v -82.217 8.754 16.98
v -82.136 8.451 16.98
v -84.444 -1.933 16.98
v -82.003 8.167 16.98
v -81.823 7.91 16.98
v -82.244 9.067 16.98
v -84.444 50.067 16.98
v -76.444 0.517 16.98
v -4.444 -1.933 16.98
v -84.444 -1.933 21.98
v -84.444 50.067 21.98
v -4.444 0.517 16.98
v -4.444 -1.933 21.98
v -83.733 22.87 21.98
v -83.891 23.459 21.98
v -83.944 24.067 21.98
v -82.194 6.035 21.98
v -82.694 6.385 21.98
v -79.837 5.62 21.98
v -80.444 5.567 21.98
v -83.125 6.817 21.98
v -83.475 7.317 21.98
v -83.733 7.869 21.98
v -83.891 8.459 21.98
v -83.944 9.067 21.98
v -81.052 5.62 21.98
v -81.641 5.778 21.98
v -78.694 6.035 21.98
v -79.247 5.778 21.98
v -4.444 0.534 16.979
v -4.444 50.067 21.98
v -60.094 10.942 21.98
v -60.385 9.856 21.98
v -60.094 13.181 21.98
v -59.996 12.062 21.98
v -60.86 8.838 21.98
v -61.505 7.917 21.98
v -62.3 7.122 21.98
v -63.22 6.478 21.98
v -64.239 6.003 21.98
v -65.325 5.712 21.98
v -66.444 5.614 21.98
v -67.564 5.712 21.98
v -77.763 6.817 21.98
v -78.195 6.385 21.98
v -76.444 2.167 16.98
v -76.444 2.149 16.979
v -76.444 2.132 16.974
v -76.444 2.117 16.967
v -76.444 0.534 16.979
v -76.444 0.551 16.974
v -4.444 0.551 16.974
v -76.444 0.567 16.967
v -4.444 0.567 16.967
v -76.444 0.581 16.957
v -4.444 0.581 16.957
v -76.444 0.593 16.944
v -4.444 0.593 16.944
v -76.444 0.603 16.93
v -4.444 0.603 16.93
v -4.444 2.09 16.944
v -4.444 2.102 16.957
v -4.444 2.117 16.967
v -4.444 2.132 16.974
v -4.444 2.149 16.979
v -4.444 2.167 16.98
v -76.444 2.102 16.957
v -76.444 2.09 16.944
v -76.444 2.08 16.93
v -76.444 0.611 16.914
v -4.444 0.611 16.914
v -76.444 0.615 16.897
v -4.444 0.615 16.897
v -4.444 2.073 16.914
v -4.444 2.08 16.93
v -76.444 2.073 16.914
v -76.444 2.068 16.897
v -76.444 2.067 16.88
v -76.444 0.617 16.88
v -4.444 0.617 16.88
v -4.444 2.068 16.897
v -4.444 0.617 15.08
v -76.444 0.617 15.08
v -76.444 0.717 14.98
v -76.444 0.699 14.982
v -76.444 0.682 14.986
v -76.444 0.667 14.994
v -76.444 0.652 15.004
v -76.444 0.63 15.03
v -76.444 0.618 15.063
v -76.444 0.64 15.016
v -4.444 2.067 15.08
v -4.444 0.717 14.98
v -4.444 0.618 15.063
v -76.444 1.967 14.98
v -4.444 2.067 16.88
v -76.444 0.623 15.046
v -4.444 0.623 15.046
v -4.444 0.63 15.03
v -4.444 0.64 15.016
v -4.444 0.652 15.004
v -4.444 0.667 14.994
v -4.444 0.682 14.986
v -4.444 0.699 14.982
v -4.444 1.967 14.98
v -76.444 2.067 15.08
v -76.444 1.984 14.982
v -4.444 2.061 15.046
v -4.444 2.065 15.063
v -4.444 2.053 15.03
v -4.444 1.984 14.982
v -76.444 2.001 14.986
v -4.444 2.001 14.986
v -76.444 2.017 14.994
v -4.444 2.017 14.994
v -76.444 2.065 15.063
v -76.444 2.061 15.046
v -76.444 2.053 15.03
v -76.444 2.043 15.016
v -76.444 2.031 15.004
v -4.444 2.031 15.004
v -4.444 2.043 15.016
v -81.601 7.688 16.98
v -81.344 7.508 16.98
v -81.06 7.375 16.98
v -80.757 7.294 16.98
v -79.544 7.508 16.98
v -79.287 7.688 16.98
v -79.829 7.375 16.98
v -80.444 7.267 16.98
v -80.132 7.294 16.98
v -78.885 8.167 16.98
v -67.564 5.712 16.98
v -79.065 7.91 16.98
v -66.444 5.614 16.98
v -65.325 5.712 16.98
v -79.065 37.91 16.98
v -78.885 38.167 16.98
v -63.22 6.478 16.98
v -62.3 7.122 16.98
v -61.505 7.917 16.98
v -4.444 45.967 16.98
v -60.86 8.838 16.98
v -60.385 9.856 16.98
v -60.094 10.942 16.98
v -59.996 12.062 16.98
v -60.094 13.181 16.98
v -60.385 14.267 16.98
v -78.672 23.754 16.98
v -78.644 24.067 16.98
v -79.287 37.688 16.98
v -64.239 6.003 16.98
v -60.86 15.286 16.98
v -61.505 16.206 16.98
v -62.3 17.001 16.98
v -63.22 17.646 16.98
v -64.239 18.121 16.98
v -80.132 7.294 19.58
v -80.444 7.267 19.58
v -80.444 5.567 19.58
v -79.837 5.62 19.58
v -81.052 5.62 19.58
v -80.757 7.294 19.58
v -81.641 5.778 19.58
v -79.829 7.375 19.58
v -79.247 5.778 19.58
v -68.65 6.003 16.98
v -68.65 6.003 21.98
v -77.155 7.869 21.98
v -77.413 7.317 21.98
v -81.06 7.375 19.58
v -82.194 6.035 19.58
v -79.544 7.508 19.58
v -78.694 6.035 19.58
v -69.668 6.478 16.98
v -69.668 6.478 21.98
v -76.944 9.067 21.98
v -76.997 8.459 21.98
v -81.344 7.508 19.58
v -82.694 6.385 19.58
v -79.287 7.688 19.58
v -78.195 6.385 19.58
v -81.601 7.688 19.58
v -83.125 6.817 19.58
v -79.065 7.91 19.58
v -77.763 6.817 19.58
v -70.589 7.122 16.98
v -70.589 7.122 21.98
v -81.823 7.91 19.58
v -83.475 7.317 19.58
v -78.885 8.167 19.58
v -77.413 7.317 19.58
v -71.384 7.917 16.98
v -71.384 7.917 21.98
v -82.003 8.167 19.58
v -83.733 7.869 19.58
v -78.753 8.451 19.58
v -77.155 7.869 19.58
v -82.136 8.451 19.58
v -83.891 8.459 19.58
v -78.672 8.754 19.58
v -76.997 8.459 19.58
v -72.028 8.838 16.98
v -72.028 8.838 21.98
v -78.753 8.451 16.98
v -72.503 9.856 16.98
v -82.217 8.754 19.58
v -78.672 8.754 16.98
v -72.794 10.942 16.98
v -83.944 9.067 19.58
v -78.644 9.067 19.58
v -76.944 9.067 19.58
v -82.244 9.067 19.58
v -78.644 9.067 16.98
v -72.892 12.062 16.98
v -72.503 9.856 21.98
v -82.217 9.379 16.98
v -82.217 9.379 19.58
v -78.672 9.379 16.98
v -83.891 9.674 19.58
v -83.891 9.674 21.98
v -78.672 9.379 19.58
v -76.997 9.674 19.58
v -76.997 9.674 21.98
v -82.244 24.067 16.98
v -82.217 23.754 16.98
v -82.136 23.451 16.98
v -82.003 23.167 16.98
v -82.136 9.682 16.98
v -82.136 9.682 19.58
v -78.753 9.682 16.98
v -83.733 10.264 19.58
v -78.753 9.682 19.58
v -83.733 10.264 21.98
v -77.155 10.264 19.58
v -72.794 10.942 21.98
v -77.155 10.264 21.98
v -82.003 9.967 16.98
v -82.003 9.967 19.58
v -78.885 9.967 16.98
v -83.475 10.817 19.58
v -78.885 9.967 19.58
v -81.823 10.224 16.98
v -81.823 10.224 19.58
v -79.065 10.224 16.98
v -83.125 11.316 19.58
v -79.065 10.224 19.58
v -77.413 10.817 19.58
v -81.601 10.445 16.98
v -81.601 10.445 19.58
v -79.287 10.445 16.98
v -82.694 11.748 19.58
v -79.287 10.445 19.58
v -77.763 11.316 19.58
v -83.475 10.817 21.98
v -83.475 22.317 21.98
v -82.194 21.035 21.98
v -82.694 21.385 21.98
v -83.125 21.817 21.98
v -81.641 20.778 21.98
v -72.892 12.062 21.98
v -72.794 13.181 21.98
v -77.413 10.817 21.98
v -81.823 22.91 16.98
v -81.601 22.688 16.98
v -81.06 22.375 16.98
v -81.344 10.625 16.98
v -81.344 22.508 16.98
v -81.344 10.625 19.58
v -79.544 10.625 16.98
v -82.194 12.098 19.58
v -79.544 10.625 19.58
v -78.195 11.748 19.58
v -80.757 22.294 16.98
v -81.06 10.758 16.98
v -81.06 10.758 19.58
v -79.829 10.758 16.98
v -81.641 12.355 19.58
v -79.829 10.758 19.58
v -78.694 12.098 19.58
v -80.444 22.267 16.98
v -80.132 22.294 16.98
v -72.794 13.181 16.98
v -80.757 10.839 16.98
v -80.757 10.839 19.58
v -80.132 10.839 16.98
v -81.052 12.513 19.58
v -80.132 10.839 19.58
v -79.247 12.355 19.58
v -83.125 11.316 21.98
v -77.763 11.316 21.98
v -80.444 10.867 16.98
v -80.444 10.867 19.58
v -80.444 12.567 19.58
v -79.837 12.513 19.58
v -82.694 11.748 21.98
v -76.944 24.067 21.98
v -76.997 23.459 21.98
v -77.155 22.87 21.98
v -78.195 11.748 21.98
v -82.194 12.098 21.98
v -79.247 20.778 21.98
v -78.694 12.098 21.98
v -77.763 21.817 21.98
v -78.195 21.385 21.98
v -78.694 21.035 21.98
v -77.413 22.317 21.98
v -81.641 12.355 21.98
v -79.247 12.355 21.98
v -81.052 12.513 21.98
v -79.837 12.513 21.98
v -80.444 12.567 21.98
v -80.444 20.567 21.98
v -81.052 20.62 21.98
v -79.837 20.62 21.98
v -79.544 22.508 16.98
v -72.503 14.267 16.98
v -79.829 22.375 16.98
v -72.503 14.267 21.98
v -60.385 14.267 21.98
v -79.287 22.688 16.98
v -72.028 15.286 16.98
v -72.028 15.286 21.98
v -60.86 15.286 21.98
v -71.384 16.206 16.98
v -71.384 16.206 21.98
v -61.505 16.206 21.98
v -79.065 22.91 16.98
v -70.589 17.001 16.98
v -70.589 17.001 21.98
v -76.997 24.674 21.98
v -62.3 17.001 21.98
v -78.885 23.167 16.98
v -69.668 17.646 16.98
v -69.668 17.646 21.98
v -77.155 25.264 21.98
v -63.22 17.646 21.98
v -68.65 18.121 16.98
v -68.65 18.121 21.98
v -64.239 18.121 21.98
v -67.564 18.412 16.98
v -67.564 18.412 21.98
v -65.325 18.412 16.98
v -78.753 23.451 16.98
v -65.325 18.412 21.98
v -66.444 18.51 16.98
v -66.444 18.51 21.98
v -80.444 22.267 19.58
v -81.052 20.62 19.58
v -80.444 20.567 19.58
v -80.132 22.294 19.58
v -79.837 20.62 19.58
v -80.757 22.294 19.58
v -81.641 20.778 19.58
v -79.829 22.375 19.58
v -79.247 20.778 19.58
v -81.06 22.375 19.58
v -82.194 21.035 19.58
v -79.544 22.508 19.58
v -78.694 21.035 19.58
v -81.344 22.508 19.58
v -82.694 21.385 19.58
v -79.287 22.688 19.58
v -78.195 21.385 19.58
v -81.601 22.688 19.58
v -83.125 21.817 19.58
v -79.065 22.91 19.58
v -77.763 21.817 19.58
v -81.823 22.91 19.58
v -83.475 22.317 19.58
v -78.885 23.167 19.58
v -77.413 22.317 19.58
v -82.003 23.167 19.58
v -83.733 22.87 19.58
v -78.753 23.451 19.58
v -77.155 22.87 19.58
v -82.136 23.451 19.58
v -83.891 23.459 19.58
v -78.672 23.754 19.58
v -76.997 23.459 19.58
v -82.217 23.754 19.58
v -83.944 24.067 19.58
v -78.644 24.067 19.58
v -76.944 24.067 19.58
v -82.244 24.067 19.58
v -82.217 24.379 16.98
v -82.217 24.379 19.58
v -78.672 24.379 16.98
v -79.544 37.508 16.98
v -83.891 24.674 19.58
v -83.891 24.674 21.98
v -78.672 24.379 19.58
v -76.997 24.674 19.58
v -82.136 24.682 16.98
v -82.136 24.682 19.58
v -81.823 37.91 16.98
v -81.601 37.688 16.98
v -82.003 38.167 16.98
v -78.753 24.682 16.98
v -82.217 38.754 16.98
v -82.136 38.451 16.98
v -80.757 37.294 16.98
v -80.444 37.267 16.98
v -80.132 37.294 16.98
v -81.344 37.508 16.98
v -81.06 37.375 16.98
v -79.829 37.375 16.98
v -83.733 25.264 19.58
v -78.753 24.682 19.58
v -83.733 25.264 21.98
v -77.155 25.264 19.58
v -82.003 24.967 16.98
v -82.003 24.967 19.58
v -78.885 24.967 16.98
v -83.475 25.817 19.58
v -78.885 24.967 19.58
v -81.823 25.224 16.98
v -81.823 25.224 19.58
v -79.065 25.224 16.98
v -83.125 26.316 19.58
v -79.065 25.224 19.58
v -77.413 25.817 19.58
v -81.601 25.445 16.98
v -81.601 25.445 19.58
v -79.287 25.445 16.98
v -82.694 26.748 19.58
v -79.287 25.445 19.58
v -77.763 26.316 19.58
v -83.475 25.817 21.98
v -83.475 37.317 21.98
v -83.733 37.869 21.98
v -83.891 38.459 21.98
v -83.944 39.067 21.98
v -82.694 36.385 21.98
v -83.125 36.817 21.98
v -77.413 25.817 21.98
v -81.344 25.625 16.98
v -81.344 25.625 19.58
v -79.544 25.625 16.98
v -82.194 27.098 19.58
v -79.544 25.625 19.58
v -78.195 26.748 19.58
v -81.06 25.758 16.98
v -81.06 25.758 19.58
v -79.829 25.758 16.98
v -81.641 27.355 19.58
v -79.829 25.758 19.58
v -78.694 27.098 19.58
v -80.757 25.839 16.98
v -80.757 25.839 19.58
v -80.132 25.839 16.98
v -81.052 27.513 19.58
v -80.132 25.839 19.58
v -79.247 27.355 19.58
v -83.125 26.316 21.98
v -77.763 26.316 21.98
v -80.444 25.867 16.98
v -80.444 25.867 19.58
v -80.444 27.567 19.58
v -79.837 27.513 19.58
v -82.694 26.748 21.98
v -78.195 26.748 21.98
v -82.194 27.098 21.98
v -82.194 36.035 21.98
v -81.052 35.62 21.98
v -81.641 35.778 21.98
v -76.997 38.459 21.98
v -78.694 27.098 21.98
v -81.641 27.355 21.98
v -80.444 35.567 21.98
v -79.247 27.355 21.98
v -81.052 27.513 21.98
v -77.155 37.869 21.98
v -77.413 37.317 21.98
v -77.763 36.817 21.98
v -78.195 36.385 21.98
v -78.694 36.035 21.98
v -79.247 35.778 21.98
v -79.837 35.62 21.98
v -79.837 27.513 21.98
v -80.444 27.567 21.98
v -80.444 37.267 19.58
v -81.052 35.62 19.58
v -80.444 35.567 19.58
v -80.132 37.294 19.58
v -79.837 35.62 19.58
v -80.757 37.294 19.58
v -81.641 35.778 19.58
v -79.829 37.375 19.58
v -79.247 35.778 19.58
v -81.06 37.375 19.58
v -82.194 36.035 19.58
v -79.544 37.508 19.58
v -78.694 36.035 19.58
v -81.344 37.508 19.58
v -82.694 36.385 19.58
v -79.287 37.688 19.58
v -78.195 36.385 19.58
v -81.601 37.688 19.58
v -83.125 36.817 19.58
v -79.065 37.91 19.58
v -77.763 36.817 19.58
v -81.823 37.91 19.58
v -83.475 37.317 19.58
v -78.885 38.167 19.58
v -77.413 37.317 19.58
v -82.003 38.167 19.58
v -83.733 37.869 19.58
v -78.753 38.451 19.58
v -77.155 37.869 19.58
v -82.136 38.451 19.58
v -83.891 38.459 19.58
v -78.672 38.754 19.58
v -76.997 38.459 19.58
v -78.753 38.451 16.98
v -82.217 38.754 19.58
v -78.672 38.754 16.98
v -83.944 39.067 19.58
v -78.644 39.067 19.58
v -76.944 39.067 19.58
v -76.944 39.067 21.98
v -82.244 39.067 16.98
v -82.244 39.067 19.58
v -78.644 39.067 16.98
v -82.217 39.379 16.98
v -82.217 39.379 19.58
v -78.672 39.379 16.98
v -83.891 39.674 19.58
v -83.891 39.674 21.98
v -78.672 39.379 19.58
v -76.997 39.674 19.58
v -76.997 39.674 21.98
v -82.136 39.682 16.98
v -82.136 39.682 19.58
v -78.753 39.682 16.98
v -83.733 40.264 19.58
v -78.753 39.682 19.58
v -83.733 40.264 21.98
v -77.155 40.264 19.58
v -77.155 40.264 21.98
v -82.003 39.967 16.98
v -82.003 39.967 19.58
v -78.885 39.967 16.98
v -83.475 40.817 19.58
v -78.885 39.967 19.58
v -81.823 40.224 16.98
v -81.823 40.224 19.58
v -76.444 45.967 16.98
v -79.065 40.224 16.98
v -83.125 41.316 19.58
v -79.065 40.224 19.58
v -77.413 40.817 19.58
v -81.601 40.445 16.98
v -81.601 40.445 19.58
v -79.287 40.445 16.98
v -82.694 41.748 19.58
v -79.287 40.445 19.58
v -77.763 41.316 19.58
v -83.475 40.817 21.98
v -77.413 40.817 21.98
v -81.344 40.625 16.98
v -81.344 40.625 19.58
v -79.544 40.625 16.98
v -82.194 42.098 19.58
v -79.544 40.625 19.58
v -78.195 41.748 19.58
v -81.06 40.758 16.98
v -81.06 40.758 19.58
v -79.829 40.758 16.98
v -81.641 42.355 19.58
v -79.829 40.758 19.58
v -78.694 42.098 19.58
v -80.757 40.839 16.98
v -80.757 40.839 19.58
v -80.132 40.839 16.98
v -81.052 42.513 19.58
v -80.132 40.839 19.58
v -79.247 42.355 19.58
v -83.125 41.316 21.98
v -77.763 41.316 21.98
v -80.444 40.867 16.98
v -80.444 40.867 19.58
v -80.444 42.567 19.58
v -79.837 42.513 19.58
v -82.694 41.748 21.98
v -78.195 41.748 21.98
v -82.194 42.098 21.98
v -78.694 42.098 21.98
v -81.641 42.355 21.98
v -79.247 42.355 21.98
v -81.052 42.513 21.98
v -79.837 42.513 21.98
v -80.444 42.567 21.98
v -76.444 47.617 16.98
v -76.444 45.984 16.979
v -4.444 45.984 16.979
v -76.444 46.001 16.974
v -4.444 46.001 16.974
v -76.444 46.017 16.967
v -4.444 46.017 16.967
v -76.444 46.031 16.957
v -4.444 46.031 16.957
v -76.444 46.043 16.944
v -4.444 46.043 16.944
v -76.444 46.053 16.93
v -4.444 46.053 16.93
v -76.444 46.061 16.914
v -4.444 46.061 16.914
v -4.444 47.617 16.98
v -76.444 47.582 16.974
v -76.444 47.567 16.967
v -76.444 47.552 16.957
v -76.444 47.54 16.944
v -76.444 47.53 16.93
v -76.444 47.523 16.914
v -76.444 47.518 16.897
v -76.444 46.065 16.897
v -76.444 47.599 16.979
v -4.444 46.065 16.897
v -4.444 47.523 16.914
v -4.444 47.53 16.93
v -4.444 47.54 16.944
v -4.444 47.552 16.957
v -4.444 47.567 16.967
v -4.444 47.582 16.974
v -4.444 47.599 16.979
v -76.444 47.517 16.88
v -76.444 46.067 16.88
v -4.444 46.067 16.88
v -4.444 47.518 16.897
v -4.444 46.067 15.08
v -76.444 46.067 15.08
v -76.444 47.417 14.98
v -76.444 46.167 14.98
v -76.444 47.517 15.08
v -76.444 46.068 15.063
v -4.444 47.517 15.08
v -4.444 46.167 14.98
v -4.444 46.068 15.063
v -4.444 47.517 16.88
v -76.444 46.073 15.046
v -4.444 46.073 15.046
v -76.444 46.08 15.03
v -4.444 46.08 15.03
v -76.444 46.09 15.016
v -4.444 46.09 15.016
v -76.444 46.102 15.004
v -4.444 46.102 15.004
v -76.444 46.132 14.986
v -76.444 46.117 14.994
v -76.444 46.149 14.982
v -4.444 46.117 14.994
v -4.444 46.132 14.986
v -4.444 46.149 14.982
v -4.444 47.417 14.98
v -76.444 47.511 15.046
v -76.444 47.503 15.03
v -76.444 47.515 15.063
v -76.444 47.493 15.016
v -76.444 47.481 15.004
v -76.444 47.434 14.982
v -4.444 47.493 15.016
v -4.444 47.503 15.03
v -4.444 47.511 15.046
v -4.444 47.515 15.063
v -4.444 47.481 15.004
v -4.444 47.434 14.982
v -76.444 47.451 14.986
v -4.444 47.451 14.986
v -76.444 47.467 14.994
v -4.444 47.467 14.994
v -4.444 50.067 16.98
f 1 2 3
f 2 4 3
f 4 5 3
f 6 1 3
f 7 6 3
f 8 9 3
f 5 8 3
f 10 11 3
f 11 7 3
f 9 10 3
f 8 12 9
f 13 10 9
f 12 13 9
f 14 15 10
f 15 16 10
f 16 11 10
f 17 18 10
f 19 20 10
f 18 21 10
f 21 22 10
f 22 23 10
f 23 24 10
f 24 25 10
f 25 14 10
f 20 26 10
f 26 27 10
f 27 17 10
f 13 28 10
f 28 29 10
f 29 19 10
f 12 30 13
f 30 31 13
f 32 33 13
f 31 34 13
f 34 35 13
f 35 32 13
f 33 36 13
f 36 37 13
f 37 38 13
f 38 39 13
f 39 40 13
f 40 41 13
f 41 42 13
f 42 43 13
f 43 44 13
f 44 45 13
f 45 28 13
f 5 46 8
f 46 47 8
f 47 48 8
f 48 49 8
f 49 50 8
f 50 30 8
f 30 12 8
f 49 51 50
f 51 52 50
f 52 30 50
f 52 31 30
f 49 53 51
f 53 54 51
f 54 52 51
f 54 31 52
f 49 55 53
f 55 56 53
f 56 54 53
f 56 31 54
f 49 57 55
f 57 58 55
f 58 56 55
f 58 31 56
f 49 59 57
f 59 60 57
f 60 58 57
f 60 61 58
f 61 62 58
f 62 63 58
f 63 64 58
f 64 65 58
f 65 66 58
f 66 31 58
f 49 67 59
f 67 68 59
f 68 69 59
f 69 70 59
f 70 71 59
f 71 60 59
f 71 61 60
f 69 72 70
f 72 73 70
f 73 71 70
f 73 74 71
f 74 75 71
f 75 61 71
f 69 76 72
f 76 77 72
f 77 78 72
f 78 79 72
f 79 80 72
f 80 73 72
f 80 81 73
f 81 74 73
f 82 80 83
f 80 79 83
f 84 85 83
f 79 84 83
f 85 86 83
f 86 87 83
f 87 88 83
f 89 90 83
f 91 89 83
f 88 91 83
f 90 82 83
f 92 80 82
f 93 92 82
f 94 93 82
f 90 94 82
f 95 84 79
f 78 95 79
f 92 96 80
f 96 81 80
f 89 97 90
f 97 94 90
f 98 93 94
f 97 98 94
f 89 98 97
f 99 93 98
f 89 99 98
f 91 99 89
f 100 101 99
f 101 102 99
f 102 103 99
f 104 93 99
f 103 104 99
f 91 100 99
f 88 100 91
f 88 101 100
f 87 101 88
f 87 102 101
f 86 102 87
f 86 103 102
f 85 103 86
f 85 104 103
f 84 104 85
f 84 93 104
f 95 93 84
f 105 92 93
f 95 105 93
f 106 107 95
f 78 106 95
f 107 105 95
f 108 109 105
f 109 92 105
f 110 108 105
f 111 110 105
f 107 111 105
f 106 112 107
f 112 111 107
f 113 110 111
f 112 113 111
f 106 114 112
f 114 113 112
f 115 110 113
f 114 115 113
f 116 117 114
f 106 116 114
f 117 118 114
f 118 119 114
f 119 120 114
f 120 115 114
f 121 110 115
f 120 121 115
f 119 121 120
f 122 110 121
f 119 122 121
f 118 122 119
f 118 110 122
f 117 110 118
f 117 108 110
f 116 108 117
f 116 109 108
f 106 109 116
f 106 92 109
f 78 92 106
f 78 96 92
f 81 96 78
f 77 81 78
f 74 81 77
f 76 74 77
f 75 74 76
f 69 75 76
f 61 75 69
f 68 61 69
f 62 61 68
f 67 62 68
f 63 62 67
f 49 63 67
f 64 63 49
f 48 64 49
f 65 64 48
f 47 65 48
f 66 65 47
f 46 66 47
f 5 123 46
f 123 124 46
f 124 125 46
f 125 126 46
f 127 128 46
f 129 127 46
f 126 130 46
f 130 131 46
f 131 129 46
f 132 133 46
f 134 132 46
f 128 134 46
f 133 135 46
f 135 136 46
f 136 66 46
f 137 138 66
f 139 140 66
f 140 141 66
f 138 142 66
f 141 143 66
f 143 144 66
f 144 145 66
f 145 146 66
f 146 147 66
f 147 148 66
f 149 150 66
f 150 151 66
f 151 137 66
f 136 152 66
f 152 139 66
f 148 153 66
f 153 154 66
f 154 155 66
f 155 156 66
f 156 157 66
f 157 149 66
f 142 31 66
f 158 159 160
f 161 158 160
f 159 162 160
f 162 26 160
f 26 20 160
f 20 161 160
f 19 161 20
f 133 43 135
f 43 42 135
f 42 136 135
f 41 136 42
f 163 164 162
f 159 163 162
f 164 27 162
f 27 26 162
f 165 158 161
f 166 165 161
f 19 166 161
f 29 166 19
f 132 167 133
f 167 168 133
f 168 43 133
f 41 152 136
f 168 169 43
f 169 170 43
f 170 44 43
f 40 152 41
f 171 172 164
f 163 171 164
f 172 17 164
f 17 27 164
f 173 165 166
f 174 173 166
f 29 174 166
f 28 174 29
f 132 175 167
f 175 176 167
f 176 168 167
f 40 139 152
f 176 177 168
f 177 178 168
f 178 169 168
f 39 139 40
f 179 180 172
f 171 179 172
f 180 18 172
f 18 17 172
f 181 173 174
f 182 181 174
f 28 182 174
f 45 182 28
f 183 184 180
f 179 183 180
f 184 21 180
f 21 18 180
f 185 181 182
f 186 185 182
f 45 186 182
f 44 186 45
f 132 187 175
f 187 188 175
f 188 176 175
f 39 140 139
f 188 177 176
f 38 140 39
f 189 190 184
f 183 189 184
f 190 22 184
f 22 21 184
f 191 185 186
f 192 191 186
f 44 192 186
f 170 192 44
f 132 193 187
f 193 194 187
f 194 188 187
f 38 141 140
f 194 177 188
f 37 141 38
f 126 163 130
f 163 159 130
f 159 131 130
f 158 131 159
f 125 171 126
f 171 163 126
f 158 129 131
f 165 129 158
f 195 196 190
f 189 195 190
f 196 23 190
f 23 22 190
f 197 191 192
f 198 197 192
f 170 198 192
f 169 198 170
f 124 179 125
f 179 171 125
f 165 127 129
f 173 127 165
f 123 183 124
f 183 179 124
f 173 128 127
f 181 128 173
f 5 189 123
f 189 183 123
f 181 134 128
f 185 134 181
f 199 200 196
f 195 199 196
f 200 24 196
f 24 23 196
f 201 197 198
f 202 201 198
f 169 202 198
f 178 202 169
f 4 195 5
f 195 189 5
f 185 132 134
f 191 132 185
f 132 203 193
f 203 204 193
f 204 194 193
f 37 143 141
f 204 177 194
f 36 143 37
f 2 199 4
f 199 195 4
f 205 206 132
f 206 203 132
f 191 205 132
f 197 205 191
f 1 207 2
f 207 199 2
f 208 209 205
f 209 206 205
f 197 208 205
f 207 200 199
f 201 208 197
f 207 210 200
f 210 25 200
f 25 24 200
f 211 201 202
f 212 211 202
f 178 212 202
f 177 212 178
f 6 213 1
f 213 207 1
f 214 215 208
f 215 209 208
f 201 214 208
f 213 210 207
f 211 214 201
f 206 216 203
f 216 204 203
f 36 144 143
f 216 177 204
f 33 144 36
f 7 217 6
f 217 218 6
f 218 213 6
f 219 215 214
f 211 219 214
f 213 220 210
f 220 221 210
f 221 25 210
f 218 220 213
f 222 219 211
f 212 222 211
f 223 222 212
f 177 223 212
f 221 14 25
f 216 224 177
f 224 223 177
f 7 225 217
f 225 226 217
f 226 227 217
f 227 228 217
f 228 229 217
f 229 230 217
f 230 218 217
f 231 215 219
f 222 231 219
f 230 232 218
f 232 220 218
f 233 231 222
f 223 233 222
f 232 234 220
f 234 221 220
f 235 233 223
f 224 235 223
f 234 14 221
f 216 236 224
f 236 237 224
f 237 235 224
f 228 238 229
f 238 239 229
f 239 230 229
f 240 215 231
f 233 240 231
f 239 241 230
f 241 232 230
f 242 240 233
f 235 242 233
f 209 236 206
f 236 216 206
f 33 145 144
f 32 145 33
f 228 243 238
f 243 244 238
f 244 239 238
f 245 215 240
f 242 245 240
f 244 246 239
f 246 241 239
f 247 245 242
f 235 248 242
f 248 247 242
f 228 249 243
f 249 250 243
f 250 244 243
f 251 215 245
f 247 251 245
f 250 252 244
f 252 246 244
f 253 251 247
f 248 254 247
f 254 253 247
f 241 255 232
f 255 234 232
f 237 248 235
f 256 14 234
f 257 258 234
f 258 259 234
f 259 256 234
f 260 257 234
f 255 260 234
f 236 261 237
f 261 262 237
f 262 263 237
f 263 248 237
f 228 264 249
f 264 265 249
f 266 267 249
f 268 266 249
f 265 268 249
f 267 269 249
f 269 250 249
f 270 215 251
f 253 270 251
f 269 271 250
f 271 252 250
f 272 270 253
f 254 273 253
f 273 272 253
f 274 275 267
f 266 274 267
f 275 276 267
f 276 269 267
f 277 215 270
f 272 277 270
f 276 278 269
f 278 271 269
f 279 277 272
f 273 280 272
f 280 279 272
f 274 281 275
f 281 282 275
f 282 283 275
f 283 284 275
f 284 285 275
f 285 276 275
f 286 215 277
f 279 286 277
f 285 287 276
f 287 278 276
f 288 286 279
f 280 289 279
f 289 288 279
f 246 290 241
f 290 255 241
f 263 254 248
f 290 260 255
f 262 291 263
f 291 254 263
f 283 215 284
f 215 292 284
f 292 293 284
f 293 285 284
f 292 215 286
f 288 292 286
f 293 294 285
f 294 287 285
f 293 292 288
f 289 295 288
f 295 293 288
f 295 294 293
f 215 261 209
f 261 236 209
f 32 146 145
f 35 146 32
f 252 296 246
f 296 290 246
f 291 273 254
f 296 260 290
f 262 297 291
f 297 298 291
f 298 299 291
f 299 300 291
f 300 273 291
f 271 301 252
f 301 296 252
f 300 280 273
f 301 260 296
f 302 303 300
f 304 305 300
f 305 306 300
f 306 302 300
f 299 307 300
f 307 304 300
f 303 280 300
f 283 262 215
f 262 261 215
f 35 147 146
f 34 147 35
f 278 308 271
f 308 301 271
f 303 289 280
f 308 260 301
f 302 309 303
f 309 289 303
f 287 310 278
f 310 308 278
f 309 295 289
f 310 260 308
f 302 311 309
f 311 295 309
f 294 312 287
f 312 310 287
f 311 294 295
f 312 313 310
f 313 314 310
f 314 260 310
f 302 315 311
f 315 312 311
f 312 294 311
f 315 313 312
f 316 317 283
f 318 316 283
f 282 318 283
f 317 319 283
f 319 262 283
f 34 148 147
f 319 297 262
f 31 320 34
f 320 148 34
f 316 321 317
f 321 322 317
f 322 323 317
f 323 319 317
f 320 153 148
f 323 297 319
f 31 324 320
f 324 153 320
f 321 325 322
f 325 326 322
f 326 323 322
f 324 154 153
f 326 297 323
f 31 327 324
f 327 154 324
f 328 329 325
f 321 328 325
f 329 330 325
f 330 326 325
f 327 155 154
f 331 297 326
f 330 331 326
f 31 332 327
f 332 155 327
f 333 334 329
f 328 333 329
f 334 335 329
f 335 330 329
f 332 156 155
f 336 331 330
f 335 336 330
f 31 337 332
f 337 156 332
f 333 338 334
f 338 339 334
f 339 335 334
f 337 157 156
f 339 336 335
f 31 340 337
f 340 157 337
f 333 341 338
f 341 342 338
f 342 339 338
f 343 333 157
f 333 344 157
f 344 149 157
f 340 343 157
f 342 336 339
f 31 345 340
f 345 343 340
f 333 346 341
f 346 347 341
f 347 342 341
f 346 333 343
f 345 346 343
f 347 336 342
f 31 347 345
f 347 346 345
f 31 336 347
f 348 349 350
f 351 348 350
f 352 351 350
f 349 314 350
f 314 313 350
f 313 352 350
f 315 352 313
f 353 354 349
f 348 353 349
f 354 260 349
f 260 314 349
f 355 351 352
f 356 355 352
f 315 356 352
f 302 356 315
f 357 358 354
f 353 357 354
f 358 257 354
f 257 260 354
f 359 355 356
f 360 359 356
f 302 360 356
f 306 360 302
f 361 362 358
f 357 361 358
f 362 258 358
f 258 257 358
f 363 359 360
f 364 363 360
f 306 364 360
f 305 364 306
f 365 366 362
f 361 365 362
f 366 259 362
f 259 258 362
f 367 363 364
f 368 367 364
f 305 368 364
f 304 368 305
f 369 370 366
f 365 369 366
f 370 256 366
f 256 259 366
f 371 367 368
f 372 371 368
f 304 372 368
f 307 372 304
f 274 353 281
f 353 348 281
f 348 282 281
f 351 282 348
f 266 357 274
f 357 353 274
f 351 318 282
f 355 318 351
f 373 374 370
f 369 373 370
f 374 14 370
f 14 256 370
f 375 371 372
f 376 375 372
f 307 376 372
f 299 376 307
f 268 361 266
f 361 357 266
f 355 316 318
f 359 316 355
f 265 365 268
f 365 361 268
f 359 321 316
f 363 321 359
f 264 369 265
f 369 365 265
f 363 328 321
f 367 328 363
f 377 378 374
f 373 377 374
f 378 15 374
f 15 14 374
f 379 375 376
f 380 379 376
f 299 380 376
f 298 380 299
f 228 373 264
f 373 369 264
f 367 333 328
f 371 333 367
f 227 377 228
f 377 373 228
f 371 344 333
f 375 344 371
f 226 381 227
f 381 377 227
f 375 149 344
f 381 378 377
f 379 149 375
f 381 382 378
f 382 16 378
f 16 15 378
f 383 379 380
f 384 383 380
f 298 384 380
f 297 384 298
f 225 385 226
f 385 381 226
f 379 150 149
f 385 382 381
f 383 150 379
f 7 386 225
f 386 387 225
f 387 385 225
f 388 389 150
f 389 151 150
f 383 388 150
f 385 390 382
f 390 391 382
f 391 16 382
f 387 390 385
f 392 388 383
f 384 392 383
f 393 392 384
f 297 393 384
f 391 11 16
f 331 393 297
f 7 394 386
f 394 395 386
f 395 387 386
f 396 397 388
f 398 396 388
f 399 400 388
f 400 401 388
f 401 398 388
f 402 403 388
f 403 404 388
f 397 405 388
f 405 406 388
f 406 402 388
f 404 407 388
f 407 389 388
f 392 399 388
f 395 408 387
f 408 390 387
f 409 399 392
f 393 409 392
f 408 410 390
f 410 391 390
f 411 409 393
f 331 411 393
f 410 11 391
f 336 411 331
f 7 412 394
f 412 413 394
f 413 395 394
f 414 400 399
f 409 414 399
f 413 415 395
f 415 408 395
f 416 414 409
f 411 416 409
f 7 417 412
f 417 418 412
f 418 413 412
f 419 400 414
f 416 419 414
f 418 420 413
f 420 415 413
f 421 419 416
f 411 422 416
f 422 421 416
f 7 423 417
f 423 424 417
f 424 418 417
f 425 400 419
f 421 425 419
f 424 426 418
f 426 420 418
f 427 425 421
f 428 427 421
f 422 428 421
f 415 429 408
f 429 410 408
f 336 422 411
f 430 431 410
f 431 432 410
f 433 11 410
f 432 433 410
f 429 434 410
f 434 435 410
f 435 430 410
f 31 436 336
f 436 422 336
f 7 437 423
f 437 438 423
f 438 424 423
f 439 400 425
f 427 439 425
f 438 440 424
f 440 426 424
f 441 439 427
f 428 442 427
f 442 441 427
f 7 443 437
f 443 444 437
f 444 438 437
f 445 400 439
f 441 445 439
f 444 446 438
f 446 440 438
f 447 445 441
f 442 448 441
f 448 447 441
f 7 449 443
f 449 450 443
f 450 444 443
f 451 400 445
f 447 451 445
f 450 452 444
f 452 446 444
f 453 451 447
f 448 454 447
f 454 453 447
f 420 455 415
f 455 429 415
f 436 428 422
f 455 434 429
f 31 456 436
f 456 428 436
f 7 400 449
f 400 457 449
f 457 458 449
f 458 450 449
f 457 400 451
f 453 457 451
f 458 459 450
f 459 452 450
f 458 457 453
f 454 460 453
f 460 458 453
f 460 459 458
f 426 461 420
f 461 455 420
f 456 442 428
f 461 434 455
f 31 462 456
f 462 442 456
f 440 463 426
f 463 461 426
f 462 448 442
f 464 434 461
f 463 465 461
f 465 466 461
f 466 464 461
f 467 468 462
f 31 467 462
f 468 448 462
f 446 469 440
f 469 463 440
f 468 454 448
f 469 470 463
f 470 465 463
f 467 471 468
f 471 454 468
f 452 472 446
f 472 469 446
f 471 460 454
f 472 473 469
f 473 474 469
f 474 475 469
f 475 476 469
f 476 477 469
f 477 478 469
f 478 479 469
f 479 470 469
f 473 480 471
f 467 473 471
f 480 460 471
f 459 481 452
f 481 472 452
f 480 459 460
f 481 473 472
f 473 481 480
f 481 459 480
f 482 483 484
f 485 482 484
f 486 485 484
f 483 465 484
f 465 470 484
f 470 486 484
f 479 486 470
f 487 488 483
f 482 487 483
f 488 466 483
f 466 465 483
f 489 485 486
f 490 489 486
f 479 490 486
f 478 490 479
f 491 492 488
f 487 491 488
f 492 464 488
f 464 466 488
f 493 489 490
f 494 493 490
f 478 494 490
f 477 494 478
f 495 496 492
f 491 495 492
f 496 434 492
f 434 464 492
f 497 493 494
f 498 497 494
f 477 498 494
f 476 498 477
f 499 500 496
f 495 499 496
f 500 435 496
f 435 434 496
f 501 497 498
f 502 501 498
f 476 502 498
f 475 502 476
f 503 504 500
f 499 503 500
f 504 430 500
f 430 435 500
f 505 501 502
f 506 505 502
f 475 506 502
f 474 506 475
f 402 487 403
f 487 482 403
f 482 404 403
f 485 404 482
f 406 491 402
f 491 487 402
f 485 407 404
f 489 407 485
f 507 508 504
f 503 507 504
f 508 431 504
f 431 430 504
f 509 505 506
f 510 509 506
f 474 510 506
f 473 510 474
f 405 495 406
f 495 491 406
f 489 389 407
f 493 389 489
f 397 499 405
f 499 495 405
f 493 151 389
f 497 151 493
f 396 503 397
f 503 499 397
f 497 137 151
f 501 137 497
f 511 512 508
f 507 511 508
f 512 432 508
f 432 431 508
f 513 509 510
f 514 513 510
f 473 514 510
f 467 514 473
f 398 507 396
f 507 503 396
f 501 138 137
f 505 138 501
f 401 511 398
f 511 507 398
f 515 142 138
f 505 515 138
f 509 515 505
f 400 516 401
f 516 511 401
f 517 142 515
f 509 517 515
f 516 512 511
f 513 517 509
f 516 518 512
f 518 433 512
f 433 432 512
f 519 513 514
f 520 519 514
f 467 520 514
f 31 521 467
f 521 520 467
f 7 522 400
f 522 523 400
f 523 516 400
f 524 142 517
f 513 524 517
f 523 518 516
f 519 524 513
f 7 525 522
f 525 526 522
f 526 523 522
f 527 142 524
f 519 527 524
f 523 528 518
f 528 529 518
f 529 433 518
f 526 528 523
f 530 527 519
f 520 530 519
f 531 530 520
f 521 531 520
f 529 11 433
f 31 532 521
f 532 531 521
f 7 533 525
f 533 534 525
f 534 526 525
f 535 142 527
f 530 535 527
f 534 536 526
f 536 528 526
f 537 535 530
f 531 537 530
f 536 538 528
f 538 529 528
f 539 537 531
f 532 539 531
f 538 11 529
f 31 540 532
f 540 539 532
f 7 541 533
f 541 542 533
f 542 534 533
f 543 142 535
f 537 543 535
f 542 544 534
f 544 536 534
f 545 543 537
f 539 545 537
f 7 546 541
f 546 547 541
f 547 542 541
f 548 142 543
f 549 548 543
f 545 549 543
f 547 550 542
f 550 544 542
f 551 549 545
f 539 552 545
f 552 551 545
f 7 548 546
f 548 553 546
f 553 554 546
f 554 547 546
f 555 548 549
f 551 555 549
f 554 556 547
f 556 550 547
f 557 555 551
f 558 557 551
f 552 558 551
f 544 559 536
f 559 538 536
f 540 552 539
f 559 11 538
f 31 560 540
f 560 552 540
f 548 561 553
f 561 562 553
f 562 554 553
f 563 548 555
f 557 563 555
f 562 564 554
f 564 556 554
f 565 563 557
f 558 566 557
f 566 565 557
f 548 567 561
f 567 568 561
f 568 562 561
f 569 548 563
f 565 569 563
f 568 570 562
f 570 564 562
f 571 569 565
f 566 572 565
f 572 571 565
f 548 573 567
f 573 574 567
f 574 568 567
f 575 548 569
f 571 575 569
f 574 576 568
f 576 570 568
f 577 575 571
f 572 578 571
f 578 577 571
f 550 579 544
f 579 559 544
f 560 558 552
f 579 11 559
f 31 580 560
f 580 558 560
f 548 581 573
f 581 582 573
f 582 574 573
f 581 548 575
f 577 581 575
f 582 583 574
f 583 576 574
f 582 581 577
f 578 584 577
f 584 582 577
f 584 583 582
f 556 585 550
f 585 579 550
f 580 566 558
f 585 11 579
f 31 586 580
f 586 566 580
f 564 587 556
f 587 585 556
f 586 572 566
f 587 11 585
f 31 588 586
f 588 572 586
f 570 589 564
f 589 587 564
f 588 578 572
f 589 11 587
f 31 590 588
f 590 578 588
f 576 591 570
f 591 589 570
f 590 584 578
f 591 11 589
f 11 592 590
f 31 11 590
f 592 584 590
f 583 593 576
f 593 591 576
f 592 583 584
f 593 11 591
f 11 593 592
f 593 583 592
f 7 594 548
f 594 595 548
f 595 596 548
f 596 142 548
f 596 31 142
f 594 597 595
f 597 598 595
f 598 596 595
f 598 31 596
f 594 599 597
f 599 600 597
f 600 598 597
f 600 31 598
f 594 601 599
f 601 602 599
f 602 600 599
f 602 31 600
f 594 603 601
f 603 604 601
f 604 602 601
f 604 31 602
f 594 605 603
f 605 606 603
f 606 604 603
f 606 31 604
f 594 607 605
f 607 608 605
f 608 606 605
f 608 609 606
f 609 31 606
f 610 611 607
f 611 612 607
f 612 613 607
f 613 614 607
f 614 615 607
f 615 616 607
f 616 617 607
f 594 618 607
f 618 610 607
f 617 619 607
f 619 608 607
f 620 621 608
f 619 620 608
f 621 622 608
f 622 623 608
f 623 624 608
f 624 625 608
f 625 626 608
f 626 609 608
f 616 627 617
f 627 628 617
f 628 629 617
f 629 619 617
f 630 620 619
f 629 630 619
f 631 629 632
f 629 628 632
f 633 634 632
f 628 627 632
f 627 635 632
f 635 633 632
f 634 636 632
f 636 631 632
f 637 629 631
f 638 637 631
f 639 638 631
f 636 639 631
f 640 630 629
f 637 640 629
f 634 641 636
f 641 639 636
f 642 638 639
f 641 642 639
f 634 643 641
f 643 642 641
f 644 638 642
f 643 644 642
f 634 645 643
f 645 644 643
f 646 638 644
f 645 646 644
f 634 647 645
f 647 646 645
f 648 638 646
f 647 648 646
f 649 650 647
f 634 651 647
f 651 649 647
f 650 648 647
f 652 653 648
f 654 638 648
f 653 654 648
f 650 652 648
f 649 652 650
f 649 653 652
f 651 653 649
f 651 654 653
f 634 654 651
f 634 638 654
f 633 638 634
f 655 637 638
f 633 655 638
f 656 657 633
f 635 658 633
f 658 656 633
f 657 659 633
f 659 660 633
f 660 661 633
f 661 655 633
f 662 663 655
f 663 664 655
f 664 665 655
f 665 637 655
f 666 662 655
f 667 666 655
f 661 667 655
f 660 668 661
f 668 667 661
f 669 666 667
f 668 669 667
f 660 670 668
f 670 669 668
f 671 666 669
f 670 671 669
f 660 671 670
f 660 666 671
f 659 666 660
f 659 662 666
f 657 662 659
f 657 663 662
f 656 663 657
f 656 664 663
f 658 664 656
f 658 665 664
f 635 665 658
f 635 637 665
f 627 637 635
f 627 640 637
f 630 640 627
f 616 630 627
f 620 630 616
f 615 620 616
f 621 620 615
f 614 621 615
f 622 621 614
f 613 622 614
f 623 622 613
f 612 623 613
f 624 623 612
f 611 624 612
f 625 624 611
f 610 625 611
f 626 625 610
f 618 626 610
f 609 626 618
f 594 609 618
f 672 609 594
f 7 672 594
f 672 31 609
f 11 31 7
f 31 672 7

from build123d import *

# Parameters (mm, degrees)
ESQUISSE1_W                                        = 80
ESQUISSE1_H                                        = 52
BOSS_EXTRU_1_DEPTH                                 = 5
ESQUISSE2_R                                        = 6.447859464
ENL_V_MAT_EXTRU_1_DEPTH                            = 5
CHAMBRAGE_POUR_VIS_T_TE_RONDE_BOMB_E_M_D           = 3.6
CHAMBRAGE_POUR_VIS_T_TE_RONDE_BOMB_E_M_CBORE_D     = 7
CHAMBRAGE_POUR_VIS_T_TE_RONDE_BOMB_E_M_CBORE_DEPTH = 2.4
ESQUISSE5_W                                        = 72
ESQUISSE5_H                                        = 1.45
BOSS_EXTRU_2_DEPTH                                 = 2
CONG_1_R                                           = 0.1


with BuildPart() as part:
    # Esquisse1 → Boss.-Extru.1 (new body)
    with BuildSketch(Plane.XY.offset(16.98011664)):
        with Locations((-44.444303066, 24.066569306)):
            Rectangle(ESQUISSE1_W, ESQUISSE1_H)
    extrude(amount=BOSS_EXTRU_1_DEPTH)

    # Esquisse2 → Enlèv. mat.-Extru.1 (cut)
    with BuildSketch(Plane.XY.offset(21.98011664)):
        with Locations((-66.444303066, 12.061734253)):
            Circle(ESQUISSE2_R)
    extrude(amount=-ENL_V_MAT_EXTRU_1_DEPTH, mode=Mode.SUBTRACT)

    # Chambrage pour vis à tête ronde bombée M34 (through all)
    with Locations(Plane.XY.offset(21.98011664)):
        with Locations((-80.444303066, 9.066569306), (-80.444303066, 24.066569306), (-80.444303066, 39.066569306)):
            CounterBoreHole(CHAMBRAGE_POUR_VIS_T_TE_RONDE_BOMB_E_M_D / 2, CHAMBRAGE_POUR_VIS_T_TE_RONDE_BOMB_E_M_CBORE_D / 2, CHAMBRAGE_POUR_VIS_T_TE_RONDE_BOMB_E_M_CBORE_DEPTH)

    # Esquisse5 → Boss.-Extru.2 (add)
    with BuildSketch(Plane(origin=(0, 0, 16.98011664), x_dir=(-1, 0, 0), z_dir=(0, 0, -1))):
        with Locations((40.444303066, 1.341569306)):
            Rectangle(ESQUISSE5_W, ESQUISSE5_H)
        with Locations((40.444303066, 46.791569306)):
            Rectangle(ESQUISSE5_W, ESQUISSE5_H)
    extrude(amount=BOSS_EXTRU_2_DEPTH)

    # Congé1
    cong_1_edges = [part.edges().sort_by_distance(p)[0] for p in [
        (-40.444303066, 0.616569306, 16.98011664),
        (-40.444303066, 2.066569306, 16.98011664),
        (-40.444303066, 0.616569306, 14.98011664),
        (-40.444303066, 2.066569306, 14.98011664),
        (-40.444303066, 46.066569306, 16.98011664),
        (-40.444303066, 47.516569306, 16.98011664),
        (-40.444303066, 46.066569306, 14.98011664),
        (-40.444303066, 47.516569306, 14.98011664),
    ]]
    fillet(cong_1_edges, radius=CONG_1_R)


solid = part.part
